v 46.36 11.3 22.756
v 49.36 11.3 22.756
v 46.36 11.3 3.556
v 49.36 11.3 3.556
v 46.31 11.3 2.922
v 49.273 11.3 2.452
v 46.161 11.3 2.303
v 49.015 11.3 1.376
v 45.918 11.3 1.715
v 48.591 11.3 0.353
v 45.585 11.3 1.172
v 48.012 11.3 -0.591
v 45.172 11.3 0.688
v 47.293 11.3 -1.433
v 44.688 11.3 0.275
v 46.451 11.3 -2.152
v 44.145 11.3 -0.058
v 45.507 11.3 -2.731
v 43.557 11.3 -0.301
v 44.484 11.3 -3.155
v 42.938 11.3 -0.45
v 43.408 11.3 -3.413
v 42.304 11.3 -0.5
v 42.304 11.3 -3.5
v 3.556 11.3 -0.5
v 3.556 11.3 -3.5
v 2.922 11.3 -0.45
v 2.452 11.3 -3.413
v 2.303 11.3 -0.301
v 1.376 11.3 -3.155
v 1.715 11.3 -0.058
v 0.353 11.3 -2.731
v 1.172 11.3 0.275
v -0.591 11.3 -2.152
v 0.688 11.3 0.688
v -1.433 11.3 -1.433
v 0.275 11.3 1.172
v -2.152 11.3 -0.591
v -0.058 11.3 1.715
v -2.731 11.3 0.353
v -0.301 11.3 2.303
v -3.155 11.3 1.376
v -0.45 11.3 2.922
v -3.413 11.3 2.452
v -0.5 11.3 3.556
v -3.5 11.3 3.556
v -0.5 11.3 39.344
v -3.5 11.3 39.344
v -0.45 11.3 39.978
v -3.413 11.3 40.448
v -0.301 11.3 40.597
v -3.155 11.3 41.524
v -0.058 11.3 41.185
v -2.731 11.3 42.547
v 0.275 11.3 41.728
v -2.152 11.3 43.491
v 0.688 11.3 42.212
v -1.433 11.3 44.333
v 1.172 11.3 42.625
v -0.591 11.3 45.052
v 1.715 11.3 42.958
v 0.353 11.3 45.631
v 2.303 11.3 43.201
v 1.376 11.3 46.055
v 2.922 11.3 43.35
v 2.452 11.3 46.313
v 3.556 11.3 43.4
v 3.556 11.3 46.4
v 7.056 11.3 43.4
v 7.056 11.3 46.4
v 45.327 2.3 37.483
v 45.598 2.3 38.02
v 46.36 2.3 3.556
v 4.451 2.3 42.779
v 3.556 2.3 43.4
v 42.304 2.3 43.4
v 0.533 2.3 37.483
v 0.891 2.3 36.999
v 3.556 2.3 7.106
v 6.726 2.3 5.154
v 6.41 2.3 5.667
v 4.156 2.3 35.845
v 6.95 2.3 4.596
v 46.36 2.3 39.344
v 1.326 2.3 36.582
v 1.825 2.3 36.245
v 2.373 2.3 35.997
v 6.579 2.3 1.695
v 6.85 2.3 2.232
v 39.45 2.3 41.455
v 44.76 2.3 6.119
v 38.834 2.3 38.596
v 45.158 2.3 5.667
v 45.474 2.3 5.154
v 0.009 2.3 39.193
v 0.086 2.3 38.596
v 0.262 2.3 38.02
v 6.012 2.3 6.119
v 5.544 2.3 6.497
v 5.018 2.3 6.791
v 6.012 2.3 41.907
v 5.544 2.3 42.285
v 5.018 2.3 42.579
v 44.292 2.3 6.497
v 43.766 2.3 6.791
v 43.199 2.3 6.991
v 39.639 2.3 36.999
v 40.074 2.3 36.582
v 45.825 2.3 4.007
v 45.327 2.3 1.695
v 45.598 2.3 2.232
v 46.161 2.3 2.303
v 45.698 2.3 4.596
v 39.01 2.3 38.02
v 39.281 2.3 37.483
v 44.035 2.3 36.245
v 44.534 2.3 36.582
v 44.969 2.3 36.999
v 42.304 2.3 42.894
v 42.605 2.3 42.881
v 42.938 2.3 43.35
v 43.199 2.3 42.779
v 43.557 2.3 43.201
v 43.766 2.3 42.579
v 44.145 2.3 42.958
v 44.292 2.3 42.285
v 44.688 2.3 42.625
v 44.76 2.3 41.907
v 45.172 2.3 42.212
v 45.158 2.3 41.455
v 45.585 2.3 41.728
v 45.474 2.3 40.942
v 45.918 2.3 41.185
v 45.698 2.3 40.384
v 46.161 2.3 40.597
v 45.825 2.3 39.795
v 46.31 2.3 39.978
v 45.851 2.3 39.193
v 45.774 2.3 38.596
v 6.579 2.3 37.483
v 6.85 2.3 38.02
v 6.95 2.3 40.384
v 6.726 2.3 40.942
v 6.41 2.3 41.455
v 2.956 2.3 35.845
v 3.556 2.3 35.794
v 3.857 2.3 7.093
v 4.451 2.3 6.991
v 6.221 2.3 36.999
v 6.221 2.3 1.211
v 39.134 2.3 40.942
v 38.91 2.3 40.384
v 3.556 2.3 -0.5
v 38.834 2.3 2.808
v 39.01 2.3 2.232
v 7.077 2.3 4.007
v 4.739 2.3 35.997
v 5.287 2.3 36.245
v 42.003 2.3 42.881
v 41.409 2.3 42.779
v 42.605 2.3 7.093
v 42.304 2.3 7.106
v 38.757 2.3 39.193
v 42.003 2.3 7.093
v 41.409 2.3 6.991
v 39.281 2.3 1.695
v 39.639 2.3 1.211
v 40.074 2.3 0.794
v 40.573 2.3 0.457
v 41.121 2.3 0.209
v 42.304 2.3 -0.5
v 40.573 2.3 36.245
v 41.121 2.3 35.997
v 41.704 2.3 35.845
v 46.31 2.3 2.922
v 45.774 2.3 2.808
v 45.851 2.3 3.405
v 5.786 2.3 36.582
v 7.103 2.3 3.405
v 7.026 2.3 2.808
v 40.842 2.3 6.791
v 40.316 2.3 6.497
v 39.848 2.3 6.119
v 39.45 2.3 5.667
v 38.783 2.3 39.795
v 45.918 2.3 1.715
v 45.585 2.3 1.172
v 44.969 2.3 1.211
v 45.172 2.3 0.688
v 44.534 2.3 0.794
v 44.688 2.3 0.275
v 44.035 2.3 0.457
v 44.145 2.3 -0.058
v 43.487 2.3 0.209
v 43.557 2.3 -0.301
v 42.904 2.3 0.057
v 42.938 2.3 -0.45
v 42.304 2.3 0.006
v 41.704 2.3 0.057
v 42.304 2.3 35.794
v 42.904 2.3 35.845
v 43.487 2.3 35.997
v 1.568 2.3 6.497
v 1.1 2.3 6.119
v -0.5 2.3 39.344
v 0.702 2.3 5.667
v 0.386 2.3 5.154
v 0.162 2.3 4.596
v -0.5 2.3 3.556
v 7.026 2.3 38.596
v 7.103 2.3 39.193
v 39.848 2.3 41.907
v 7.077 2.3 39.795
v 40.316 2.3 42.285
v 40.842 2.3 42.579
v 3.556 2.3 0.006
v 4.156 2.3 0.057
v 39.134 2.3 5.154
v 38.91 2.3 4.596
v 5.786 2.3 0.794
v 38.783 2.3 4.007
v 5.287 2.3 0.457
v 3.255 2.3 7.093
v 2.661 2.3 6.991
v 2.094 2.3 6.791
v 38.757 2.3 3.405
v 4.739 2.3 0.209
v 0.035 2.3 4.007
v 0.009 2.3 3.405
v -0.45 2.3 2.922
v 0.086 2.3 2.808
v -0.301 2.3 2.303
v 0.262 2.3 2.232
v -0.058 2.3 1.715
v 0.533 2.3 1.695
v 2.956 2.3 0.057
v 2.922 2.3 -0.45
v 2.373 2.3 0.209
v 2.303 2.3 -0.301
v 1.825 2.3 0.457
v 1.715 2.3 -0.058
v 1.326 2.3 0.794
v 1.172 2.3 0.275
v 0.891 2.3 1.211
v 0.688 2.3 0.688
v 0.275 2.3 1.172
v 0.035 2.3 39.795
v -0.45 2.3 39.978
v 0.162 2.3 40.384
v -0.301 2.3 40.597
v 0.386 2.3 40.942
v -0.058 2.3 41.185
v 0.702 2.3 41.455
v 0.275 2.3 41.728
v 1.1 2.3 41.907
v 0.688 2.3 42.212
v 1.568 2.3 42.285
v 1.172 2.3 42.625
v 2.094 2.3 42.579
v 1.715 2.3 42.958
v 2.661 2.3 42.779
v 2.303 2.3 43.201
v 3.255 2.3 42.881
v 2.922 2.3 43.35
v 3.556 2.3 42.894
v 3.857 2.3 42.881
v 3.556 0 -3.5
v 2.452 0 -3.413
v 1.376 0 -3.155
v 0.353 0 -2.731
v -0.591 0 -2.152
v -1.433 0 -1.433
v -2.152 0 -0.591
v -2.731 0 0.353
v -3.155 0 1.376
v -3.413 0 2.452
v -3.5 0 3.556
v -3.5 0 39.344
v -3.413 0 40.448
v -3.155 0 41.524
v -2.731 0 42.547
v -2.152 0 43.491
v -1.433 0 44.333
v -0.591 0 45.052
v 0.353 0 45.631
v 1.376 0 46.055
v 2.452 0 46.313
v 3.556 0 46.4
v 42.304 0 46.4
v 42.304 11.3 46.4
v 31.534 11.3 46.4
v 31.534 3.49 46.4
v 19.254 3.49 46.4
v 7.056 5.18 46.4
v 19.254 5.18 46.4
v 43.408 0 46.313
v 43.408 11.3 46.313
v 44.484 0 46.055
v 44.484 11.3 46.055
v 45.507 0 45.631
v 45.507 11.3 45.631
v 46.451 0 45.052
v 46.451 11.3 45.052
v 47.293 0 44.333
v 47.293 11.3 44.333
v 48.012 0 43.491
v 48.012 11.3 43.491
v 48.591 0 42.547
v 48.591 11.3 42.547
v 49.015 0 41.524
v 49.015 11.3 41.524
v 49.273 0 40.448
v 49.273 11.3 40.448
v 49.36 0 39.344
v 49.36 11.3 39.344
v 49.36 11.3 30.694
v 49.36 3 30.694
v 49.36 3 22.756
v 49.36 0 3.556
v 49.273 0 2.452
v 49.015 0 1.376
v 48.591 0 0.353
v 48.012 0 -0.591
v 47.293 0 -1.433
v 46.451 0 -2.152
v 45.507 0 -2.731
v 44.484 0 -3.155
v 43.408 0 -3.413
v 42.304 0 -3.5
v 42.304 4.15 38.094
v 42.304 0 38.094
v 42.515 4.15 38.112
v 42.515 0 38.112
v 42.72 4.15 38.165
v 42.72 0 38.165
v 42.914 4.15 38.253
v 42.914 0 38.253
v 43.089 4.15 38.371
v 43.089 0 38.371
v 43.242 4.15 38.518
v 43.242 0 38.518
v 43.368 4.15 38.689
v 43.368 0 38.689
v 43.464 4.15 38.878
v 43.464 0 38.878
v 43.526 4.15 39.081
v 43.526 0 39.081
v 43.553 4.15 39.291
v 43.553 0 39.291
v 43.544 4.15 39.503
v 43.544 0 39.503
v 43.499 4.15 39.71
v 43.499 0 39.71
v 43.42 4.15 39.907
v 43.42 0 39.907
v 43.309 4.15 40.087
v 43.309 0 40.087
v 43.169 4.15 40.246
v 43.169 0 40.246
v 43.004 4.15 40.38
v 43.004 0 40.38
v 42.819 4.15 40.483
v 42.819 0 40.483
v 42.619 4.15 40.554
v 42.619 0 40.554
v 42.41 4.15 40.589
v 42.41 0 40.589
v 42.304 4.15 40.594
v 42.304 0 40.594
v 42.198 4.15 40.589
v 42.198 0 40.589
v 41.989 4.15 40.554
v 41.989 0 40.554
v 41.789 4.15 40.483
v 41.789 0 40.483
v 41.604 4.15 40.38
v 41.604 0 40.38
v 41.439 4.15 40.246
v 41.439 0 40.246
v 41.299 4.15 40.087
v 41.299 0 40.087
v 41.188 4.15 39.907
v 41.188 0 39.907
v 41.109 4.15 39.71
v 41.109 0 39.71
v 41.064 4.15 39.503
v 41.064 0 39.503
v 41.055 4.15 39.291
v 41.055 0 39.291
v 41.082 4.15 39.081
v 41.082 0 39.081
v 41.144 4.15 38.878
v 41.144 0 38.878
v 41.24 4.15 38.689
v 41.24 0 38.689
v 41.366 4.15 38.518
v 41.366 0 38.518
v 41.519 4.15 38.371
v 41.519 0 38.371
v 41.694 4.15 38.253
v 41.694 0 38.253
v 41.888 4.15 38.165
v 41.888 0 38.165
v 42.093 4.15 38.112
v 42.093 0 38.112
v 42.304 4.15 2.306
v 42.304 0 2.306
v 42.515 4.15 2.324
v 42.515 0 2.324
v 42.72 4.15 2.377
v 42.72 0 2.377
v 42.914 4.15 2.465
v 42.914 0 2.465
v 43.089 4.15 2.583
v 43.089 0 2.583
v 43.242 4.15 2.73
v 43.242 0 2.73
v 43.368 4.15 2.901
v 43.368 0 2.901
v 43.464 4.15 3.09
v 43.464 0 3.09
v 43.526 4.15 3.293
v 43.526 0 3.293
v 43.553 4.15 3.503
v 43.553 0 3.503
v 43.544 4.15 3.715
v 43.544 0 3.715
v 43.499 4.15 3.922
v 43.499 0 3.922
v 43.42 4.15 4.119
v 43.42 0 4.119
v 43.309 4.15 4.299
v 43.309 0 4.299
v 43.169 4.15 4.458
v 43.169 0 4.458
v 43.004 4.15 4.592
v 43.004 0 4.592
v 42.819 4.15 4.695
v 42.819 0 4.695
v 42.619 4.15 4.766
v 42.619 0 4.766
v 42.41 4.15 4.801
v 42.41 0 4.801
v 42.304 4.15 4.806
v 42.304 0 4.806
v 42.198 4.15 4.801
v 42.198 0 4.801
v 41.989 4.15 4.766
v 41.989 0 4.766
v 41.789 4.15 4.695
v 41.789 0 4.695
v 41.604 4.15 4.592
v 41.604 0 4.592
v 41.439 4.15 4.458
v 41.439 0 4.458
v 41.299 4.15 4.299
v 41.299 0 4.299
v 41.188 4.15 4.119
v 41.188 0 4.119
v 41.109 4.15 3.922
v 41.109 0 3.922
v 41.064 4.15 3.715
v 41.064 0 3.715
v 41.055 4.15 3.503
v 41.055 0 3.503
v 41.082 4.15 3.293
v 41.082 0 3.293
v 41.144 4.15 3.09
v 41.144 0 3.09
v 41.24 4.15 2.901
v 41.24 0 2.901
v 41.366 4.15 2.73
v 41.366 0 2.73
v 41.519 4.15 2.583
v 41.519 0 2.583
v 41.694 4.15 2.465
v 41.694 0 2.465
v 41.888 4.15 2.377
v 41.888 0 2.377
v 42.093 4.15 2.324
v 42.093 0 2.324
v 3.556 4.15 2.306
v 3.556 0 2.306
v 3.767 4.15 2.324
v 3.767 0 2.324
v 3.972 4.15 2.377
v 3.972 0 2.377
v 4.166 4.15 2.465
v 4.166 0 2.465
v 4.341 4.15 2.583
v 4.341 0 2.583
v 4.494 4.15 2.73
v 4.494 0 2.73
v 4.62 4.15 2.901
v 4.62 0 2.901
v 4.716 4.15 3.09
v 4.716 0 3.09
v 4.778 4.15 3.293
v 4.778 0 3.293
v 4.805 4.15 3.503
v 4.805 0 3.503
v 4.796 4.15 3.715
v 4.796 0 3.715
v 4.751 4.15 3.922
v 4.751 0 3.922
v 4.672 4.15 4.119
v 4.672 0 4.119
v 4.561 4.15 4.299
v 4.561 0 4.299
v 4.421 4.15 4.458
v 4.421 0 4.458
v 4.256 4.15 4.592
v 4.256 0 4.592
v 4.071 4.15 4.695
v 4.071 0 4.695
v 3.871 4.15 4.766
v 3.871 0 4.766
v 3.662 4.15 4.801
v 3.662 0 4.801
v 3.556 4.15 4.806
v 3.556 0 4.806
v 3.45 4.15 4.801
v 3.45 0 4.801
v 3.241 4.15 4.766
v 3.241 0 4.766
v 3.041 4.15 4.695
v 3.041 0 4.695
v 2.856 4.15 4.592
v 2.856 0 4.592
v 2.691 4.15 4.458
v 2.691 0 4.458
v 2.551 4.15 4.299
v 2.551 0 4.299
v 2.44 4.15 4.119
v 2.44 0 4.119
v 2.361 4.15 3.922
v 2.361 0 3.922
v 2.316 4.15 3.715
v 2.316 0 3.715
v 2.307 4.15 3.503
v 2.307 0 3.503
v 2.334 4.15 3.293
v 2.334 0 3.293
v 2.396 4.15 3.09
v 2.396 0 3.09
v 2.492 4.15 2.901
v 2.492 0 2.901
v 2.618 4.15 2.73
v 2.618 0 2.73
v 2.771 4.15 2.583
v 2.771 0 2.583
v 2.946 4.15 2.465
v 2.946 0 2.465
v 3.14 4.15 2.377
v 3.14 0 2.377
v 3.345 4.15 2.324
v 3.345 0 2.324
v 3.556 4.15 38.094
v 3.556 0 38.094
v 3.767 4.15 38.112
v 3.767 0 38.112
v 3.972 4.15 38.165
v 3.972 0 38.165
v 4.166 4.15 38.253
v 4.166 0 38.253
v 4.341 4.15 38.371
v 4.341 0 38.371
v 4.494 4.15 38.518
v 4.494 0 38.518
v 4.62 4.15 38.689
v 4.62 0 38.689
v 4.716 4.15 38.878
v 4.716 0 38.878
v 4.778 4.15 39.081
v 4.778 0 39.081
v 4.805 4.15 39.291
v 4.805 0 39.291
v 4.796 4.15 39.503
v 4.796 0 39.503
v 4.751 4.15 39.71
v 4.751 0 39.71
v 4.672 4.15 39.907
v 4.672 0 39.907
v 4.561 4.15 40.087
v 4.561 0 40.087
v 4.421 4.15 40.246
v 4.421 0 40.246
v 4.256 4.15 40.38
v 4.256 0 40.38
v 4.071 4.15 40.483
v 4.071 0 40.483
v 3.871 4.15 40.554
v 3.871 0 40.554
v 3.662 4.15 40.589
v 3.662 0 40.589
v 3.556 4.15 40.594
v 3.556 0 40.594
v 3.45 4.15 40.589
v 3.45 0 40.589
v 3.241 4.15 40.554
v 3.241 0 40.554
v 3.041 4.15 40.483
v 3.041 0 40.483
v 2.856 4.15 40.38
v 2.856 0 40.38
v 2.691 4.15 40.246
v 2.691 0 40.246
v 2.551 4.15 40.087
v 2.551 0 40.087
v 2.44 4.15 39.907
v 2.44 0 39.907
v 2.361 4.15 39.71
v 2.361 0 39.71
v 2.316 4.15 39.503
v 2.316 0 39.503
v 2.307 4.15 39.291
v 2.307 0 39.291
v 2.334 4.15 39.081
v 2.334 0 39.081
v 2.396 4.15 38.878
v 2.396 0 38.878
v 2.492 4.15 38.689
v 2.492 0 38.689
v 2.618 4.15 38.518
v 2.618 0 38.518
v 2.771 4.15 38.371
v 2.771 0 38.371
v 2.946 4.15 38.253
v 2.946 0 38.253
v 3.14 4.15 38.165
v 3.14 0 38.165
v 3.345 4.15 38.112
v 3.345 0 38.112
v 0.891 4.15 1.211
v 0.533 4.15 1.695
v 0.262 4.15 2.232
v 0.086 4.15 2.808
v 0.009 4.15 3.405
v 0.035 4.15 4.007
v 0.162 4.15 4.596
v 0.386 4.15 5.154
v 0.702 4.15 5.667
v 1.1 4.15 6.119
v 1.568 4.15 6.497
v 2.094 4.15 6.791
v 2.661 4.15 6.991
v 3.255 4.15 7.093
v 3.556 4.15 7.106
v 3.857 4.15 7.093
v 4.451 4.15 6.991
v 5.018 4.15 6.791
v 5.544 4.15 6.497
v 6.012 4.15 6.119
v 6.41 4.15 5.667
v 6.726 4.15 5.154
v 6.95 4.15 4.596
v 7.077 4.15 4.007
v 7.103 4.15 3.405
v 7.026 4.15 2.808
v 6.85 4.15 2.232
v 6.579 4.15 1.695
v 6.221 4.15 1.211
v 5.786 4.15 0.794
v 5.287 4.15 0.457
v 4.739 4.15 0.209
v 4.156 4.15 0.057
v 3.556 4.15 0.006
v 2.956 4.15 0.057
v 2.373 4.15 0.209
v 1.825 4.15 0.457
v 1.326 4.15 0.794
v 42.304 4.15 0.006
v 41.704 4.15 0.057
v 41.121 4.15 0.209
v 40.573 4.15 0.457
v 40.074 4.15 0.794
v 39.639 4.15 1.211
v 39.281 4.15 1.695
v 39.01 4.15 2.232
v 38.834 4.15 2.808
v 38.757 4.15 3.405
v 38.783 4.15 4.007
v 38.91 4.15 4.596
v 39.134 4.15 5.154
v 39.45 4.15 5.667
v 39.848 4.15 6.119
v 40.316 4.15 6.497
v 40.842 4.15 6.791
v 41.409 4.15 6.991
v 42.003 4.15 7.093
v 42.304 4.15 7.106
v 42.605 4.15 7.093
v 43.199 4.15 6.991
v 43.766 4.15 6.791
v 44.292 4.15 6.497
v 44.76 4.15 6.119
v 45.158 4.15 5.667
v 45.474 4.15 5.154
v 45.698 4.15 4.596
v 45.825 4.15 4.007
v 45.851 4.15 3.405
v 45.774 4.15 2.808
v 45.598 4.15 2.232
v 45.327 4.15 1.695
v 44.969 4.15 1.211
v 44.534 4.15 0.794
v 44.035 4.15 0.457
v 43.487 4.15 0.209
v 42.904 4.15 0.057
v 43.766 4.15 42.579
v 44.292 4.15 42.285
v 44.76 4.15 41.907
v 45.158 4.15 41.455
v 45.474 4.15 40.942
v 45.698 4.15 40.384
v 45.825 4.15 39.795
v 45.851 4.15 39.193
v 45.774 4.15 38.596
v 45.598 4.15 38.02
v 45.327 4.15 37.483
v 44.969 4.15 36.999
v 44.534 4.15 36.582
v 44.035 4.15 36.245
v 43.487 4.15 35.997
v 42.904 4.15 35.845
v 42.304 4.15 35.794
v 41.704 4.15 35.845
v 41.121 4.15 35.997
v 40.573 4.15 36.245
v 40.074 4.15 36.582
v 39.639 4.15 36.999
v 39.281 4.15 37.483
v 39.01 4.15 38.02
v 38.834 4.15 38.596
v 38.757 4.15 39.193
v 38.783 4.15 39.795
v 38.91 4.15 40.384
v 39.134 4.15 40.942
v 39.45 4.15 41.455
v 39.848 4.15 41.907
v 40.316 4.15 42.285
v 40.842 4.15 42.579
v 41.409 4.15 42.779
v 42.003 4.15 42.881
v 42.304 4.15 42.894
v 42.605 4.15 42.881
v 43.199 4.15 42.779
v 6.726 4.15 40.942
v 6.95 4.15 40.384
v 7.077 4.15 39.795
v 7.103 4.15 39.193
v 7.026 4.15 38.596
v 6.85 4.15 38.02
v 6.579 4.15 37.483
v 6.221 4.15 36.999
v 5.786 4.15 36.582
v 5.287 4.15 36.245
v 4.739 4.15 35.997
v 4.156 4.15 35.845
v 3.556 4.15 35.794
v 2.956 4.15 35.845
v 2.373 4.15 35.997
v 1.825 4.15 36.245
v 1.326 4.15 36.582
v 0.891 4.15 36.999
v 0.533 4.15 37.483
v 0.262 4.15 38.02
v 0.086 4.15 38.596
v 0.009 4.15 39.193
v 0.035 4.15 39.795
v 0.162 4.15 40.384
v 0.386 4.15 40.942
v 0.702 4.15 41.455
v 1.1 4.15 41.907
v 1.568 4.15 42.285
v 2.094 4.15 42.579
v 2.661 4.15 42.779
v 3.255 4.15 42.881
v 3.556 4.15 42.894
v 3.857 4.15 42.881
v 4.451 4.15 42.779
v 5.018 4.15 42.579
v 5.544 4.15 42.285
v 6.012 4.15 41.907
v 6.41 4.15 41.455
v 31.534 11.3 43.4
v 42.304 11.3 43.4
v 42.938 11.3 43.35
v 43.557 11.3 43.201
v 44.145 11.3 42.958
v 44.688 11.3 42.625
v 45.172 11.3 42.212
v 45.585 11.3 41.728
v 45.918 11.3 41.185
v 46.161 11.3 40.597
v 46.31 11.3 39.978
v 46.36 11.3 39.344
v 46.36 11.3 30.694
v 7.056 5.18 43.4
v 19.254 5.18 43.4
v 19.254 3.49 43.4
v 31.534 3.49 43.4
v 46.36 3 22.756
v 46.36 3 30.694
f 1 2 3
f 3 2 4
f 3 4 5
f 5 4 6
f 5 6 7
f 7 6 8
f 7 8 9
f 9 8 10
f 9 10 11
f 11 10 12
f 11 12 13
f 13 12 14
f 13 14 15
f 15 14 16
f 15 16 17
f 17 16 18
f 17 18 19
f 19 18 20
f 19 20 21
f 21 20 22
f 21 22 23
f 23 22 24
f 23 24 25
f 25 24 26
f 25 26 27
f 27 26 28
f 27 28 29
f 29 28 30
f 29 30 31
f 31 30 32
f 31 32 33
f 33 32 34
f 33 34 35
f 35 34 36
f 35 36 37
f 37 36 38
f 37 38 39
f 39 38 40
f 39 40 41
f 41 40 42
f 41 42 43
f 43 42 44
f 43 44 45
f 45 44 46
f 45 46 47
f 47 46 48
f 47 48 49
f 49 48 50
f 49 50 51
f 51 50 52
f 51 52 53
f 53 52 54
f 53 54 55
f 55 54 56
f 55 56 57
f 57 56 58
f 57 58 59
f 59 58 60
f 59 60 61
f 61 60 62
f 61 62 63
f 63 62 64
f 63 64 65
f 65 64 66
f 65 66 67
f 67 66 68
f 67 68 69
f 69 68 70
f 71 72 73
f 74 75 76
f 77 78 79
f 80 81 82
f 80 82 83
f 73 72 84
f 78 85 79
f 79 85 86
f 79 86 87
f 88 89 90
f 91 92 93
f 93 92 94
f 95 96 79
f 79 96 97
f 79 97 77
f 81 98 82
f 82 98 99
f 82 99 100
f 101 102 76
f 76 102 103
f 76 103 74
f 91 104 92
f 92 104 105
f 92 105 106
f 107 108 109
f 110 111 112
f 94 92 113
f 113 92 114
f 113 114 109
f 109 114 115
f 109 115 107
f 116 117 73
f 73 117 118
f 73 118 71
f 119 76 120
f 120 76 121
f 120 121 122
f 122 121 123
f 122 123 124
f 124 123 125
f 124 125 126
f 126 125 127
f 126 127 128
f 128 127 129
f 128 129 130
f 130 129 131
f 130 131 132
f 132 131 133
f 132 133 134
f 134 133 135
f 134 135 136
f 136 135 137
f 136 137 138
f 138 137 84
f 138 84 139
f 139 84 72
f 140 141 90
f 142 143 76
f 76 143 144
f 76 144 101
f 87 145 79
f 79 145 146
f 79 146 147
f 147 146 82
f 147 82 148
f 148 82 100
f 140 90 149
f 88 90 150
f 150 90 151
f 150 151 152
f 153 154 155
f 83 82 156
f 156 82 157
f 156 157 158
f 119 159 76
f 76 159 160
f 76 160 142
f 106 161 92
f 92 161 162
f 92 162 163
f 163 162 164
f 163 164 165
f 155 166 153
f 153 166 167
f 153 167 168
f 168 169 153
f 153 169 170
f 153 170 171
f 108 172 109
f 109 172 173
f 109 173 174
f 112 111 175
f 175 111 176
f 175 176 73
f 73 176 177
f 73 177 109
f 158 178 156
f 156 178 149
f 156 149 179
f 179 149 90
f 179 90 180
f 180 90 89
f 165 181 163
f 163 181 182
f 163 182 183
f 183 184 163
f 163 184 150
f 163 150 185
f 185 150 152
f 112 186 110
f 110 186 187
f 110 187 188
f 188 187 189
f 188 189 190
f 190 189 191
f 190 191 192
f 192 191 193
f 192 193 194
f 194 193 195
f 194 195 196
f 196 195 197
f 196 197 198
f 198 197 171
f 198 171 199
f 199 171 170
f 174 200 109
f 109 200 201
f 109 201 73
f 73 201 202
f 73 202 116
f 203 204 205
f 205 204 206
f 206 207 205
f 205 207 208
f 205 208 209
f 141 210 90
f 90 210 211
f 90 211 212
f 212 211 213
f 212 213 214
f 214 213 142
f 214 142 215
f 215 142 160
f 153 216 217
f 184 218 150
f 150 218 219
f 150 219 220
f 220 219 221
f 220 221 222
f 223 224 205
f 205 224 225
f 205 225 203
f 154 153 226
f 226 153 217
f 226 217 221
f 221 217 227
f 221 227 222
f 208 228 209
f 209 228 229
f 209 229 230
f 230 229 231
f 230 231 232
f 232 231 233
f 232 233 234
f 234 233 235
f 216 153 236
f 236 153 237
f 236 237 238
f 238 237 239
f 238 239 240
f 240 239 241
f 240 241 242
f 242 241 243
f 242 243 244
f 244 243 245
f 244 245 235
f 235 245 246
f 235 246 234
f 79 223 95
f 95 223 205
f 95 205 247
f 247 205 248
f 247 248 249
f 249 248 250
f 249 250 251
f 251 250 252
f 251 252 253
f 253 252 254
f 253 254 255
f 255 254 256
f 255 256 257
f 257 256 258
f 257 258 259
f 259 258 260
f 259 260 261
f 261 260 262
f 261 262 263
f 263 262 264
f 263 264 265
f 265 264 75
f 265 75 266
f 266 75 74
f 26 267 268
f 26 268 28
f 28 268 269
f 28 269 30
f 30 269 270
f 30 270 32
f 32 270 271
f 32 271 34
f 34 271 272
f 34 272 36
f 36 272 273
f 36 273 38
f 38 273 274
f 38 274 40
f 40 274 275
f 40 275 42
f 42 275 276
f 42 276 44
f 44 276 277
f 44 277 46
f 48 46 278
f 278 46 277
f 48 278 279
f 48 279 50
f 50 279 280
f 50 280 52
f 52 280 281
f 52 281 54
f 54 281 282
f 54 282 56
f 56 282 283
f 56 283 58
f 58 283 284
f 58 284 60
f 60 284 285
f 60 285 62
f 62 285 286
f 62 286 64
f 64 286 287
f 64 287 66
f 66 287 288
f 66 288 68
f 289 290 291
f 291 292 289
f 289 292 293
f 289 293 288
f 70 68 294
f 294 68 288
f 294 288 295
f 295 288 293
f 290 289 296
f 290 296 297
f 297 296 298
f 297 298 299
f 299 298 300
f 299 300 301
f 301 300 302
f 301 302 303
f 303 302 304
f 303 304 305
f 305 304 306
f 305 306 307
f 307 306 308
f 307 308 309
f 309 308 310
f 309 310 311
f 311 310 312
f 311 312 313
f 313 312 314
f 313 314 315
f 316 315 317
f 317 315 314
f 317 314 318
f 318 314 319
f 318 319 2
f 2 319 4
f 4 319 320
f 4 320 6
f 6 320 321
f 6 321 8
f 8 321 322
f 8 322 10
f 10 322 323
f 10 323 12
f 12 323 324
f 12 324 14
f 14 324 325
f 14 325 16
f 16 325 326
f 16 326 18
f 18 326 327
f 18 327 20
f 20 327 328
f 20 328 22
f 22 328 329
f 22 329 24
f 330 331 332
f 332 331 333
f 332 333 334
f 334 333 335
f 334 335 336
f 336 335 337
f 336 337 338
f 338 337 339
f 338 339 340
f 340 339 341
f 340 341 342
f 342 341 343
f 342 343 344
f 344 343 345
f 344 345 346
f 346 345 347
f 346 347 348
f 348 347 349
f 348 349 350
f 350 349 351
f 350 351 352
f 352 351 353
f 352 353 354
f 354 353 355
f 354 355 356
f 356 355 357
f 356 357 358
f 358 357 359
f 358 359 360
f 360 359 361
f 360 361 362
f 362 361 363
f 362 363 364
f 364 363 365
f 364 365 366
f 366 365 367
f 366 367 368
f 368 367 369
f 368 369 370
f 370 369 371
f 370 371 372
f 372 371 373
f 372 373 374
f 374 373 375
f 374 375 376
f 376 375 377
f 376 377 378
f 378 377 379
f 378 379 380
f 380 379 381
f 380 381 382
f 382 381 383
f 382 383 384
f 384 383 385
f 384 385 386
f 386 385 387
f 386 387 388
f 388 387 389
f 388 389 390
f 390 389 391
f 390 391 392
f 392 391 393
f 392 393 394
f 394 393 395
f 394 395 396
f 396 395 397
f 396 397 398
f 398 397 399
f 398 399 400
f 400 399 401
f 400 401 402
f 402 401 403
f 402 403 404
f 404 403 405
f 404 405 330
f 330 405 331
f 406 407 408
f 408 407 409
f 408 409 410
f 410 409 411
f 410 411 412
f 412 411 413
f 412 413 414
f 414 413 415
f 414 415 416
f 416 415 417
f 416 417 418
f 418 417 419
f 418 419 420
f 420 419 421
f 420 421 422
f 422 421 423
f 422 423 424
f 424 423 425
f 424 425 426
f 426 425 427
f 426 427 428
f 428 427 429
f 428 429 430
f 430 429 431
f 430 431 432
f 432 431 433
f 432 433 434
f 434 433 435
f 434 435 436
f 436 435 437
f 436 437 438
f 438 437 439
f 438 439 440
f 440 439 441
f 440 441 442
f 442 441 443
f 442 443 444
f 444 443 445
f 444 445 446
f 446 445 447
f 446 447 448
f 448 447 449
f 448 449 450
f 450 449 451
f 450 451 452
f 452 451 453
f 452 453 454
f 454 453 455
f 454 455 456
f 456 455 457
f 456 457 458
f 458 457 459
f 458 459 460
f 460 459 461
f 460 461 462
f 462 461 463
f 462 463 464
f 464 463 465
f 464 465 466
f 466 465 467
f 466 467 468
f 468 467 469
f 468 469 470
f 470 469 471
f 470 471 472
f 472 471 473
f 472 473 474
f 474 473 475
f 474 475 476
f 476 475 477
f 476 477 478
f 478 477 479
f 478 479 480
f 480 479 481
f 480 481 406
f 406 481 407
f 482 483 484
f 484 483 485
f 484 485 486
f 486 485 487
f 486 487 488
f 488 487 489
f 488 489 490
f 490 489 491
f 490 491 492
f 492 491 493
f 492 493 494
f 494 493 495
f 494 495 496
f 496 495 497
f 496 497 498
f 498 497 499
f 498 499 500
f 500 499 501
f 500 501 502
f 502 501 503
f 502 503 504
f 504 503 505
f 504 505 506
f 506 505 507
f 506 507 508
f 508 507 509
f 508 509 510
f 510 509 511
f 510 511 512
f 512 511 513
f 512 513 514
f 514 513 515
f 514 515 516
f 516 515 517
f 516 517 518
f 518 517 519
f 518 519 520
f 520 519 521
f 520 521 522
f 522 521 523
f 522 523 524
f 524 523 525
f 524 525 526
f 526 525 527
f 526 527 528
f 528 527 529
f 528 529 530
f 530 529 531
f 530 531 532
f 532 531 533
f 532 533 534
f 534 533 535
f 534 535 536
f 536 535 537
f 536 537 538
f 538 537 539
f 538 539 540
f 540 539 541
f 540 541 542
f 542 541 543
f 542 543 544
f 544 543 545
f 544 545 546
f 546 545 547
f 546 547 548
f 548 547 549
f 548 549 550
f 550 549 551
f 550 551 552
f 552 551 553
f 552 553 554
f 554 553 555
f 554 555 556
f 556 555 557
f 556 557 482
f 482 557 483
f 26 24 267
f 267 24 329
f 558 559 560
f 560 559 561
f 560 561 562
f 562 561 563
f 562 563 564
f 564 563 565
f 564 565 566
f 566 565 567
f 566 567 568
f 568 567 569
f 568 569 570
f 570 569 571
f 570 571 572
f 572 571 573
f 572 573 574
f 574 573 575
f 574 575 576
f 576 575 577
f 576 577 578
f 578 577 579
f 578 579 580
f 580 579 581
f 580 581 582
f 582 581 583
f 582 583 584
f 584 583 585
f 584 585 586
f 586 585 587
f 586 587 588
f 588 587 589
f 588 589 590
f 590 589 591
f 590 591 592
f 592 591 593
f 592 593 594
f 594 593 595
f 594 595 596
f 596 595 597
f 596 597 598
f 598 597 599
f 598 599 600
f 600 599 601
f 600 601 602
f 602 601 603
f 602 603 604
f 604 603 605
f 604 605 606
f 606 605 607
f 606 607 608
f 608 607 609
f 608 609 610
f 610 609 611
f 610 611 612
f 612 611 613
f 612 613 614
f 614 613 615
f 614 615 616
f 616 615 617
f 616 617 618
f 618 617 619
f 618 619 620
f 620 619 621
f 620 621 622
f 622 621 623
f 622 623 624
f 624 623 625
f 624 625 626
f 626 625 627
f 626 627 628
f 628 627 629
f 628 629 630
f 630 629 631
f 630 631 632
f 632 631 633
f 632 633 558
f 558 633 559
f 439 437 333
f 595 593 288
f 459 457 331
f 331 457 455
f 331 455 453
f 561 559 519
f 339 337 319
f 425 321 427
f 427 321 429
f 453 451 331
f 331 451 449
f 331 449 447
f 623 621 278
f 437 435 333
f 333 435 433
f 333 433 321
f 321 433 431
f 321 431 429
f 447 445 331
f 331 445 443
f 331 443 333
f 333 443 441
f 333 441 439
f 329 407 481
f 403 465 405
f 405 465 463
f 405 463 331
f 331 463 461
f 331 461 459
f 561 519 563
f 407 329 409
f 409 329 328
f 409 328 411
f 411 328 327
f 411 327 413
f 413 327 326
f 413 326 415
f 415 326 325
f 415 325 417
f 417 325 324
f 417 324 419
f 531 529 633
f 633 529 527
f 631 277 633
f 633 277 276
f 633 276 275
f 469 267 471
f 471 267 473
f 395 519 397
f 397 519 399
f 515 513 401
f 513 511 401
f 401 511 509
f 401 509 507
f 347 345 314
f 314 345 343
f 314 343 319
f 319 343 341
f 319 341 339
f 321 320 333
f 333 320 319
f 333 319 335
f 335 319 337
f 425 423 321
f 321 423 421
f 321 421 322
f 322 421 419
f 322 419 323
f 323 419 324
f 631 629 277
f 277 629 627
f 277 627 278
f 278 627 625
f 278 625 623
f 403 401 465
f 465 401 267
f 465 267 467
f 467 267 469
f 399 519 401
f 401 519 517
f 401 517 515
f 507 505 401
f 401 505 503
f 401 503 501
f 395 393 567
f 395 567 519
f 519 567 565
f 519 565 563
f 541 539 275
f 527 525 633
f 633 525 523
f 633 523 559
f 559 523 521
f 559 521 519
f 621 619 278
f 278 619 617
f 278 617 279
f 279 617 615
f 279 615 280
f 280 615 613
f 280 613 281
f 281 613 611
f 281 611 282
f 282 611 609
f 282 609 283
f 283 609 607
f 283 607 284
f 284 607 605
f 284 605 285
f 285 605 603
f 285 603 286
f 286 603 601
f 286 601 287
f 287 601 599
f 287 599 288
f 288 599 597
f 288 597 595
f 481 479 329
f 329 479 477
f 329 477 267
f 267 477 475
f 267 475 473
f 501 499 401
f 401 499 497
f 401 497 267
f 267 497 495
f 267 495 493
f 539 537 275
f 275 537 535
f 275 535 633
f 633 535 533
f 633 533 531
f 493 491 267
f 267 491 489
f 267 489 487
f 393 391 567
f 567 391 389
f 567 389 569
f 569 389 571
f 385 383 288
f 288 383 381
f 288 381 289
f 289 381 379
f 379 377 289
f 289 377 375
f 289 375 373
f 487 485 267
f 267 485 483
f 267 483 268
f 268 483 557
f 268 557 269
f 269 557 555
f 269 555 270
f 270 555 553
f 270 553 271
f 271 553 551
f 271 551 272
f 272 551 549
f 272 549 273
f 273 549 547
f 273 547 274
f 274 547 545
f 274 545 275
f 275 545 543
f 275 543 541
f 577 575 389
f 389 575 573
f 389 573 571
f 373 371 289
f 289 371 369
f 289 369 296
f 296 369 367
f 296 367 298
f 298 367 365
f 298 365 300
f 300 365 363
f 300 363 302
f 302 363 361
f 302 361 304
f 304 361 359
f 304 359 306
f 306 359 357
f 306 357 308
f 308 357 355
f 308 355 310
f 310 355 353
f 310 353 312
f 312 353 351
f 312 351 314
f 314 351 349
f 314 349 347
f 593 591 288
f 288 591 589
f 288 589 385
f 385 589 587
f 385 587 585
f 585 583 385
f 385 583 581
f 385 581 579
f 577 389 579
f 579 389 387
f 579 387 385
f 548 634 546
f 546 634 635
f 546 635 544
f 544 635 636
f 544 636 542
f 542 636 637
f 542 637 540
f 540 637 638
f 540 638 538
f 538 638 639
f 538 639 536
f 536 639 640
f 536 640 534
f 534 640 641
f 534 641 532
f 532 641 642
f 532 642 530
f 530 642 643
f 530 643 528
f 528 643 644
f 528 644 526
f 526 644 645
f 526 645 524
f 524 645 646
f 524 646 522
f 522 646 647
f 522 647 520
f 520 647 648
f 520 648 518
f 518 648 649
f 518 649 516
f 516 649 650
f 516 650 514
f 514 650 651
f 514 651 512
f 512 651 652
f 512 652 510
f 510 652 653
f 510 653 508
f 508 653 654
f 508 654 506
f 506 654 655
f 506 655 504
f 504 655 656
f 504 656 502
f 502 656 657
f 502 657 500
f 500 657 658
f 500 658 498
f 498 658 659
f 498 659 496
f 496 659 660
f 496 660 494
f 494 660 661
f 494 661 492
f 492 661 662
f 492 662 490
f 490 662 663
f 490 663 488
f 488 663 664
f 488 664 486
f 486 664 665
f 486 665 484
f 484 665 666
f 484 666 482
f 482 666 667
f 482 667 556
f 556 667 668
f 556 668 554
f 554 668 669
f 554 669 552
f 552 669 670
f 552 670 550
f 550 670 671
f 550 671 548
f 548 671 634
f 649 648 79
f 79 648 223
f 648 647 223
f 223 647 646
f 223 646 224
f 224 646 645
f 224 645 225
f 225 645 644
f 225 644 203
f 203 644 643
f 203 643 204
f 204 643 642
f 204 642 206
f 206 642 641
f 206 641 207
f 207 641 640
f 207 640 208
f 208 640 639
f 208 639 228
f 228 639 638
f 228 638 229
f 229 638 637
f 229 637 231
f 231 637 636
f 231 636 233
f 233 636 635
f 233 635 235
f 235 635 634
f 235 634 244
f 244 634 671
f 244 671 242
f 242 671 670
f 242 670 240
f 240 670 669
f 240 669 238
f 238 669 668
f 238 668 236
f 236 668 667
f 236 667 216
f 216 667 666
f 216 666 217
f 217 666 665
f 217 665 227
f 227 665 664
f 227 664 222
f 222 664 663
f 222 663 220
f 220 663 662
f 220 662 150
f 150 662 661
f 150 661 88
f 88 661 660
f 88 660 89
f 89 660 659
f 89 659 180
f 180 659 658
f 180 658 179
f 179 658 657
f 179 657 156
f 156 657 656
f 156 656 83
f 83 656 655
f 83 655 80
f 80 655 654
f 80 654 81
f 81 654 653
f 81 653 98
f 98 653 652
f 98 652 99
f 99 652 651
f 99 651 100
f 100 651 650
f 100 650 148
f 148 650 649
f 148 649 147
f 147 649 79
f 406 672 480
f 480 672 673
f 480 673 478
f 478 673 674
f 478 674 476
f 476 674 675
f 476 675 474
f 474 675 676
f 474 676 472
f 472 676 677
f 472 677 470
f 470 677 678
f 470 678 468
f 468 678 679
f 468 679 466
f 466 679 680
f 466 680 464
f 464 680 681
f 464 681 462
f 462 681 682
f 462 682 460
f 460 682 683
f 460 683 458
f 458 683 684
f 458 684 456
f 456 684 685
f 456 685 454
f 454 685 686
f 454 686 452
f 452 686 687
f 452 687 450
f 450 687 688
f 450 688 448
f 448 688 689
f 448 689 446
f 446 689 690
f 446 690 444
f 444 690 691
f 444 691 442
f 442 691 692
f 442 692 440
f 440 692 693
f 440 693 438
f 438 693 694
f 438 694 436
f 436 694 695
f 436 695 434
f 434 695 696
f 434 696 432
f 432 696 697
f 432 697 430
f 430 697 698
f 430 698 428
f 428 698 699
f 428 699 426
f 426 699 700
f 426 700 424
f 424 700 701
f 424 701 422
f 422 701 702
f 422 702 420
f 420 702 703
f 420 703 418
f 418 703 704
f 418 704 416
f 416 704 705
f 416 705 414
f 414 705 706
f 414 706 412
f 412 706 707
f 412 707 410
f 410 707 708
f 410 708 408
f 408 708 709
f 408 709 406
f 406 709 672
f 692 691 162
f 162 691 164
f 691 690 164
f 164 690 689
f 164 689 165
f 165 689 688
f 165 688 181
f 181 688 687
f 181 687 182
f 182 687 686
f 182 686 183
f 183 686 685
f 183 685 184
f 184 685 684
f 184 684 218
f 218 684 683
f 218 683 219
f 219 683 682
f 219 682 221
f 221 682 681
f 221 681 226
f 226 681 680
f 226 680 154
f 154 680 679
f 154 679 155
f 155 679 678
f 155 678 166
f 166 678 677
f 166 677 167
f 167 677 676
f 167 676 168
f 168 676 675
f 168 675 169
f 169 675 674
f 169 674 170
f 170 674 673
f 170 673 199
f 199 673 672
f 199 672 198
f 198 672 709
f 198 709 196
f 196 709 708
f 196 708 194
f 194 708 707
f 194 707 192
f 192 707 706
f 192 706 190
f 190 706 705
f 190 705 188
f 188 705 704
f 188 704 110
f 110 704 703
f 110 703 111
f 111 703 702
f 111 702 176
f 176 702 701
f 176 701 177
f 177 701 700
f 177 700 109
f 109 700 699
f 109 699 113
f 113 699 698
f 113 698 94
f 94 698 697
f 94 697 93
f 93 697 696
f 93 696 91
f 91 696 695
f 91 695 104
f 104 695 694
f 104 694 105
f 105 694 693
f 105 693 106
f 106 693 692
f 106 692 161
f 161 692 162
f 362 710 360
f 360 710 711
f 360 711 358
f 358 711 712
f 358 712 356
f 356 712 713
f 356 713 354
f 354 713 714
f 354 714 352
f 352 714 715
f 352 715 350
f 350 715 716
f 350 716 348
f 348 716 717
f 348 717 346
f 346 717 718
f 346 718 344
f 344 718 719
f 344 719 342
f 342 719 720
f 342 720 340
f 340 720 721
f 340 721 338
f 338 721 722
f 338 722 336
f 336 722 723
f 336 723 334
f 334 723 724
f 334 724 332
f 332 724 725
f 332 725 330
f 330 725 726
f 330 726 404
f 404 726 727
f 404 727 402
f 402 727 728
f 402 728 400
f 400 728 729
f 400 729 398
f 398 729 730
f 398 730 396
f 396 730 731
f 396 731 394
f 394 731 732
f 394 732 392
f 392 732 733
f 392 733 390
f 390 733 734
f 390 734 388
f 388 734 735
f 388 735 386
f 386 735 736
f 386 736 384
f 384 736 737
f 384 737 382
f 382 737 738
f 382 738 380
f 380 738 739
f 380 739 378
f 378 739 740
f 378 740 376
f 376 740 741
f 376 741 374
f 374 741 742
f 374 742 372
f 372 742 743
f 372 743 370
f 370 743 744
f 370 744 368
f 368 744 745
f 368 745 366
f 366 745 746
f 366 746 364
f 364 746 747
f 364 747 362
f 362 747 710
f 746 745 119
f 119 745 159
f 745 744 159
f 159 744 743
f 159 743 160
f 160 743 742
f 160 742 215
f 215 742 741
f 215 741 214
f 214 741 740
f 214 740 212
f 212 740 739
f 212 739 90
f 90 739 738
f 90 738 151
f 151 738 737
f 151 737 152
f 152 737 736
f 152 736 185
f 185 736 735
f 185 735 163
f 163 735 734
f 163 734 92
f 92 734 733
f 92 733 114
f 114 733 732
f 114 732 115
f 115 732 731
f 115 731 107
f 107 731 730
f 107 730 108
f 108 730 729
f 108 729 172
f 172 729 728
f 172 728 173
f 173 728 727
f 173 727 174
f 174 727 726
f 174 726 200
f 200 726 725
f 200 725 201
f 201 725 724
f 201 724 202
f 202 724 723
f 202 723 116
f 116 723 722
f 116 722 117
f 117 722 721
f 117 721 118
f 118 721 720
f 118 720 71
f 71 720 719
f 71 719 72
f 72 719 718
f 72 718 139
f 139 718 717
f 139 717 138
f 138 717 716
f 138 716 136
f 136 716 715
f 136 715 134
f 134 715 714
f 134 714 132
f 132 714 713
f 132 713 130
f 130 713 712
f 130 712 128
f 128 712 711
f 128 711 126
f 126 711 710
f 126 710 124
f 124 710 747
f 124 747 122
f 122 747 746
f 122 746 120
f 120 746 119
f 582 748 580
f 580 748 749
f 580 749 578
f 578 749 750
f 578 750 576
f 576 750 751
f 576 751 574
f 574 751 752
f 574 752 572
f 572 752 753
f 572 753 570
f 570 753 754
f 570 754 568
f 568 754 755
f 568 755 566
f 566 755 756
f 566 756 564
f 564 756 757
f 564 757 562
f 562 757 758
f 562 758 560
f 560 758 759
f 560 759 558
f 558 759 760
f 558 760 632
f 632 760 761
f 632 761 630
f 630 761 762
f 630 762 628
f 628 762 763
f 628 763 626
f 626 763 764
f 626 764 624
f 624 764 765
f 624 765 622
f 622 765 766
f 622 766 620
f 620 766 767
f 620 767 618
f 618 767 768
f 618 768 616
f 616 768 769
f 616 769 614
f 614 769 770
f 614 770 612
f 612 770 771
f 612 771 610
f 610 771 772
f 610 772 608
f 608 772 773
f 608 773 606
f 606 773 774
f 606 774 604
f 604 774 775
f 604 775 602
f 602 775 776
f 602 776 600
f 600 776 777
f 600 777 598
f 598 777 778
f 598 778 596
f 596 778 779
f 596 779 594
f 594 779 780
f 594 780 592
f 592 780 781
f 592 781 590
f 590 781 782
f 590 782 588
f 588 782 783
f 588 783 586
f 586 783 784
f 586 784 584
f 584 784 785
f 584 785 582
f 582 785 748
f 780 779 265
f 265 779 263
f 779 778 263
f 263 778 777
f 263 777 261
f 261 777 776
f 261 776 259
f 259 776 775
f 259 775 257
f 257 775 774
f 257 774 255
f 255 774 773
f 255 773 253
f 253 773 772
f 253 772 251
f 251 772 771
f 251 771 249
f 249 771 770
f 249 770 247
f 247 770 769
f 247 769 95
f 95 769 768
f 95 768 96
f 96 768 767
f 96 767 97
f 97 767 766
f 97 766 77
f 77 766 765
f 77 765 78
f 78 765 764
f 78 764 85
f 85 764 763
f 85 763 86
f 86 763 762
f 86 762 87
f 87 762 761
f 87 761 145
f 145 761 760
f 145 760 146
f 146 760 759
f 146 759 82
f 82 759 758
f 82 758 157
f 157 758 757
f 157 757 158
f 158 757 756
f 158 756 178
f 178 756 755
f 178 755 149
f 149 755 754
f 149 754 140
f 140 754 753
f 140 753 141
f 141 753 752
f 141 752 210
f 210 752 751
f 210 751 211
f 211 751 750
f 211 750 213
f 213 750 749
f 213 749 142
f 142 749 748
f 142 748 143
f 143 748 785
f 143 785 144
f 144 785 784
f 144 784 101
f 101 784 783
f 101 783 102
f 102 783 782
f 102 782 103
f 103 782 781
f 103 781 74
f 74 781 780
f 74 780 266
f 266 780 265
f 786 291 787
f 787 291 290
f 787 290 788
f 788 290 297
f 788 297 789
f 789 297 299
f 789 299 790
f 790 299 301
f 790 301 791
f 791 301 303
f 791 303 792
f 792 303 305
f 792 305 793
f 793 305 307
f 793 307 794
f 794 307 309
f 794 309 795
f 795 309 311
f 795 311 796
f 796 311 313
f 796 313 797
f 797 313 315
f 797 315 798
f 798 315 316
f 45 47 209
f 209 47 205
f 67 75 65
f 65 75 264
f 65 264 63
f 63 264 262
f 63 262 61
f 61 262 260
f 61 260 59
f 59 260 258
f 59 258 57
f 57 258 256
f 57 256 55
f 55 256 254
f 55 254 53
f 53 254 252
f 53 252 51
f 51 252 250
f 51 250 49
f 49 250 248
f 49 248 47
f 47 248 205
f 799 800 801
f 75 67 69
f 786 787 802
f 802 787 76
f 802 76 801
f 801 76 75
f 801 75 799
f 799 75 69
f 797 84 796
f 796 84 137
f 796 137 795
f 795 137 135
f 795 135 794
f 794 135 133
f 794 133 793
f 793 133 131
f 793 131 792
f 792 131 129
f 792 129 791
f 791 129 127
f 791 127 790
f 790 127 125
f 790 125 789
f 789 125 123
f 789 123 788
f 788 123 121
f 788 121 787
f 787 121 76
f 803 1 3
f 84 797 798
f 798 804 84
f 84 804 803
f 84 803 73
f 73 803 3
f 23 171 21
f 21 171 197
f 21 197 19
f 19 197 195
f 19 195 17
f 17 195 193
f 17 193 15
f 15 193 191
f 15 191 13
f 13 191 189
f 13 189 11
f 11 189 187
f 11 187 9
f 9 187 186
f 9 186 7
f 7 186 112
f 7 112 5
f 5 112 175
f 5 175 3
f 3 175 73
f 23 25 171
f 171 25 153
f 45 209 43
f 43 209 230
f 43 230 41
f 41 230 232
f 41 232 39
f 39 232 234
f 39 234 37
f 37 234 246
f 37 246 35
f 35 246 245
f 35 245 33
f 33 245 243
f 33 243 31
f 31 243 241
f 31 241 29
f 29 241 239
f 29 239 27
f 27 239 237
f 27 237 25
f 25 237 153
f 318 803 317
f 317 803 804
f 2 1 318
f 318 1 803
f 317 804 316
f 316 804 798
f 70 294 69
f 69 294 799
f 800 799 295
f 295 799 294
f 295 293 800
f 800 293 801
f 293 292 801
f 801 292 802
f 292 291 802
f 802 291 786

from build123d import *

# Parameters (mm, degrees)
SKETCH1_R           = 3.55
SKETCH1_R_2         = 1.25
BOSS_EXTRUDE1_DEPTH = 2.3
BOSS_EXTRUDE2_START = 2.3
SKETCH1_3_R         = 3.55
SKETCH1_3_R_2       = 1.25
BOSS_EXTRUDE2_DEPTH = 1.85
BOSS_EXTRUDE3_START = 2.3
BOSS_EXTRUDE3_DEPTH = 9
CUT_EXTRUDE3_REACH  = 73.238
SKETCH2_W           = 7.938
SKETCH2_H           = 8.3
CUT_EXTRUDE4_REACH  = 73.092
SKETCH3_W           = 13.048
SKETCH3_H           = 6.12
CUT_EXTRUDE5_REACH  = 73.092
SKETCH4_W           = 12.28
SKETCH4_H           = 7.81


with BuildPart() as part:
    # Sketch1 → Boss-Extrude1 (new body)
    # profile 1 of 7: a face of its own
    with BuildSketch(Plane(origin=(0, 0, 0), x_dir=(1, 0, 0), z_dir=(0, 1, 0))):
        with BuildLine():
            ThreePointArc((-3.5, -3.556), (-1.433345448, 1.433345448), (3.556, 3.5))
            Line((3.556, 3.5), (42.304, 3.5))
            ThreePointArc((42.304, 3.5), (47.293345448, 1.433345448), (49.36, -3.556))
            Line((49.36, -3.556), (49.36, -39.344))
            ThreePointArc((49.36, -39.344), (47.293345448, -44.333345448), (42.304, -46.4))
            Line((42.304, -46.4), (3.556, -46.4))
            ThreePointArc((3.556, -46.4), (-1.433345448, -44.333345448), (-3.5, -39.344))
            Line((-3.5, -39.344), (-3.5, -3.556))
        make_face()
        with BuildLine():
            Line((-0.5, -3.556), (-0.5, -39.344))
            ThreePointArc((-0.5, -39.344), (0.687974896, -42.212025104), (3.556, -43.4))
            Line((3.556, -43.4), (42.304, -43.4))
            ThreePointArc((42.304, -43.4), (45.172025104, -42.212025104), (46.36, -39.344))
            Line((46.36, -39.344), (46.36, -3.556))
            ThreePointArc((46.36, -3.556), (45.172025104, -0.687974896), (42.304, 0.5))
            Line((42.304, 0.5), (3.556, 0.5))
            ThreePointArc((3.556, 0.5), (0.687974896, -0.687974896), (-0.5, -3.556))
        make_face(mode=Mode.SUBTRACT)
    # profile 2 of 7: a face of its own
    with BuildSketch(Plane(origin=(0, 0, 0), x_dir=(1, 0, 0), z_dir=(0, 1, 0))):
        with BuildLine():
            ThreePointArc((-0.5, -3.556), (0.687974896, -0.687974896), (3.556, 0.5))
            Line((3.556, 0.5), (42.304, 0.5))
            ThreePointArc((42.304, 0.5), (45.172025104, -0.687974896), (46.36, -3.556))
            Line((46.36, -3.556), (46.36, -39.344))
            ThreePointArc((46.36, -39.344), (45.172025104, -42.212025104), (42.304, -43.4))
            Line((42.304, -43.4), (3.556, -43.4))
            ThreePointArc((3.556, -43.4), (0.687974896, -42.212025104), (-0.5, -39.344))
            Line((-0.5, -39.344), (-0.5, -3.556))
        make_face()
        with BuildLine():
            Line((0, -3.556), (0, -39.344))
            ThreePointArc((0, -39.344), (1.041528286, -41.858471714), (3.556, -42.9))
            Line((3.556, -42.9), (42.304, -42.9))
            ThreePointArc((42.304, -42.9), (44.818471714, -41.858471714), (45.86, -39.344))
            Line((45.86, -39.344), (45.86, -3.556))
            ThreePointArc((45.86, -3.556), (44.818471714, -1.041528286), (42.304, 0))
            Line((42.304, 0), (3.556, 0))
            ThreePointArc((3.556, 0), (1.041528286, -1.041528286), (0, -3.556))
        make_face(mode=Mode.SUBTRACT)
    # profile 3 of 7: a face of its own
    with BuildSketch(Plane(origin=(0, 0, 0), x_dir=(1, 0, 0), z_dir=(0, 1, 0))):
        with BuildLine():
            ThreePointArc((0, -3.556), (1.041528286, -1.041528286), (3.556, 0))
            Line((3.556, 0), (42.304, 0))
            ThreePointArc((42.304, 0), (44.818471714, -1.041528286), (45.86, -3.556))
            Line((45.86, -3.556), (45.86, -39.344))
            ThreePointArc((45.86, -39.344), (44.818471714, -41.858471714), (42.304, -42.9))
            Line((42.304, -42.9), (3.556, -42.9))
            ThreePointArc((3.556, -42.9), (1.041528286, -41.858471714), (0, -39.344))
            Line((0, -39.344), (0, -3.556))
        make_face()
        with Locations((3.556, -39.344)):
            Circle(SKETCH1_R, mode=Mode.SUBTRACT)
        with Locations((42.304, -39.344)):
            Circle(SKETCH1_R, mode=Mode.SUBTRACT)
        with Locations((42.304, -3.556)):
            Circle(SKETCH1_R, mode=Mode.SUBTRACT)
        with Locations((3.556, -3.556)):
            Circle(SKETCH1_R, mode=Mode.SUBTRACT)
    # profile 4 of 7: a face of its own
    with BuildSketch(Plane(origin=(0, 0, 0), x_dir=(1, 0, 0), z_dir=(0, 1, 0))):
        with Locations((42.304, -39.344)):
            Circle(SKETCH1_R)
        with Locations(Location((42.304, -39.344, 0), (0, 0, 270))):
            Circle(SKETCH1_R_2, mode=Mode.SUBTRACT)
    # profile 5 of 7: a face of its own
    with BuildSketch(Plane(origin=(0, 0, 0), x_dir=(1, 0, 0), z_dir=(0, 1, 0))):
        with Locations((3.556, -39.344)):
            Circle(SKETCH1_R)
        with Locations(Location((3.556, -39.344, 0), (0, 0, 270))):
            Circle(SKETCH1_R_2, mode=Mode.SUBTRACT)
    # profile 6 of 7: a face of its own
    with BuildSketch(Plane(origin=(0, 0, 0), x_dir=(1, 0, 0), z_dir=(0, 1, 0))):
        with Locations((3.556, -3.556)):
            Circle(SKETCH1_R)
        with Locations(Location((3.556, -3.556, 0), (0, 0, 270))):
            Circle(SKETCH1_R_2, mode=Mode.SUBTRACT)
    # profile 7 of 7: a face of its own
    with BuildSketch(Plane(origin=(0, 0, 0), x_dir=(1, 0, 0), z_dir=(0, 1, 0))):
        with Locations((42.304, -3.556)):
            Circle(SKETCH1_R)
        with Locations(Location((42.304, -3.556, 0), (0, 0, 270))):
            Circle(SKETCH1_R_2, mode=Mode.SUBTRACT)
    extrude(amount=BOSS_EXTRUDE1_DEPTH)

    # Sketch1<3> → Boss-Extrude2 (add)
    # profile 1 of 4: a face of its own
    with BuildSketch(Plane(origin=(0, 0, 0), x_dir=(1, 0, 0), z_dir=(0, 1, 0)).offset(BOSS_EXTRUDE2_START)):
        with Locations(Location((3.556, -3.556, 0), (0, 0, 270))):
            Circle(SKETCH1_3_R)
        with Locations(Location((3.556, -3.556, 0), (0, 0, 270))):
            Circle(SKETCH1_3_R_2, mode=Mode.SUBTRACT)
    # profile 2 of 4: a face of its own
    with BuildSketch(Plane(origin=(0, 0, 0), x_dir=(1, 0, 0), z_dir=(0, 1, 0)).offset(BOSS_EXTRUDE2_START)):
        with Locations(Location((42.304, -3.556, 0), (0, 0, 270))):
            Circle(SKETCH1_3_R)
        with Locations(Location((42.304, -3.556, 0), (0, 0, 270))):
            Circle(SKETCH1_3_R_2, mode=Mode.SUBTRACT)
    # profile 3 of 4: a face of its own
    with BuildSketch(Plane(origin=(0, 0, 0), x_dir=(1, 0, 0), z_dir=(0, 1, 0)).offset(BOSS_EXTRUDE2_START)):
        with Locations(Location((42.304, -39.344, 0), (0, 0, 270))):
            Circle(SKETCH1_3_R)
        with Locations(Location((42.304, -39.344, 0), (0, 0, 270))):
            Circle(SKETCH1_3_R_2, mode=Mode.SUBTRACT)
    # profile 4 of 4: a face of its own
    with BuildSketch(Plane(origin=(0, 0, 0), x_dir=(1, 0, 0), z_dir=(0, 1, 0)).offset(BOSS_EXTRUDE2_START)):
        with Locations(Location((3.556, -39.344, 0), (0, 0, 270))):
            Circle(SKETCH1_3_R)
        with Locations(Location((3.556, -39.344, 0), (0, 0, 270))):
            Circle(SKETCH1_3_R_2, mode=Mode.SUBTRACT)
    extrude(amount=BOSS_EXTRUDE2_DEPTH)

    # Sketch1<4> → Boss-Extrude3 (add)
    with BuildSketch(Plane(origin=(0, 0, 0), x_dir=(1, 0, 0), z_dir=(0, 1, 0)).offset(BOSS_EXTRUDE3_START)):
        with BuildLine():
            ThreePointArc((-3.5, -3.556), (-1.433345448, 1.433345448), (3.556, 3.5))
            Line((3.556, 3.5), (42.304, 3.5))
            ThreePointArc((42.304, 3.5), (47.293345448, 1.433345448), (49.36, -3.556))
            Line((49.36, -3.556), (49.36, -39.344))
            ThreePointArc((49.36, -39.344), (47.293345448, -44.333345448), (42.304, -46.4))
            Line((42.304, -46.4), (3.556, -46.4))
            ThreePointArc((3.556, -46.4), (-1.433345448, -44.333345448), (-3.5, -39.344))
            Line((-3.5, -39.344), (-3.5, -3.556))
        make_face()
        with BuildLine():
            Line((-0.5, -3.556), (-0.5, -39.344))
            ThreePointArc((-0.5, -39.344), (0.687974896, -42.212025104), (3.556, -43.4))
            Line((3.556, -43.4), (42.304, -43.4))
            ThreePointArc((42.304, -43.4), (45.172025104, -42.212025104), (46.36, -39.344))
            Line((46.36, -39.344), (46.36, -3.556))
            ThreePointArc((46.36, -3.556), (45.172025104, -0.687974896), (42.304, 0.5))
            Line((42.304, 0.5), (3.556, 0.5))
            ThreePointArc((3.556, 0.5), (0.687974896, -0.687974896), (-0.5, -3.556))
        make_face(mode=Mode.SUBTRACT)
    extrude(amount=BOSS_EXTRUDE3_DEPTH)

    # Sketch2 → Cut-Extrude3 (cut, up to next)
    with BuildSketch(Plane(origin=(49.36, 0, 0), x_dir=(0, 0, -1), z_dir=(1, 0, 0)), mode=Mode.PRIVATE) as cut_extrude3_sk1:
        with Locations((-26.725, 7.15)):
            Rectangle(SKETCH2_W, SKETCH2_H)
    cut_extrude3_tool1 = extrude(cut_extrude3_sk1.sketch, amount=-CUT_EXTRUDE3_REACH, mode=Mode.PRIVATE) & part.part
    add(cut_extrude3_tool1.solids().sort_by_distance((49.36, 7.15, 26.725))[0], mode=Mode.SUBTRACT)

    # Sketch3 → Cut-Extrude4 (cut, up to next)
    with BuildSketch(Plane.XY.offset(46.4), mode=Mode.PRIVATE) as cut_extrude4_sk1:
        with Locations((13.58, 8.24)):
            Rectangle(SKETCH3_W, SKETCH3_H)
    cut_extrude4_tool1 = extrude(cut_extrude4_sk1.sketch, amount=-CUT_EXTRUDE4_REACH, mode=Mode.PRIVATE) & part.part
    add(cut_extrude4_tool1.solids().sort_by_distance((13.58, 8.24, 46.4))[0], mode=Mode.SUBTRACT)

    # Sketch4 → Cut-Extrude5 (cut, up to next)
    with BuildSketch(Plane.XY.offset(46.4), mode=Mode.PRIVATE) as cut_extrude5_sk1:
        with Locations((25.394, 7.395)):
            Rectangle(SKETCH4_W, SKETCH4_H)
    cut_extrude5_tool1 = extrude(cut_extrude5_sk1.sketch, amount=-CUT_EXTRUDE5_REACH, mode=Mode.PRIVATE) & part.part
    add(cut_extrude5_tool1.solids().sort_by_distance((25.394, 7.395, 46.4))[0], mode=Mode.SUBTRACT)


solid = part.part
